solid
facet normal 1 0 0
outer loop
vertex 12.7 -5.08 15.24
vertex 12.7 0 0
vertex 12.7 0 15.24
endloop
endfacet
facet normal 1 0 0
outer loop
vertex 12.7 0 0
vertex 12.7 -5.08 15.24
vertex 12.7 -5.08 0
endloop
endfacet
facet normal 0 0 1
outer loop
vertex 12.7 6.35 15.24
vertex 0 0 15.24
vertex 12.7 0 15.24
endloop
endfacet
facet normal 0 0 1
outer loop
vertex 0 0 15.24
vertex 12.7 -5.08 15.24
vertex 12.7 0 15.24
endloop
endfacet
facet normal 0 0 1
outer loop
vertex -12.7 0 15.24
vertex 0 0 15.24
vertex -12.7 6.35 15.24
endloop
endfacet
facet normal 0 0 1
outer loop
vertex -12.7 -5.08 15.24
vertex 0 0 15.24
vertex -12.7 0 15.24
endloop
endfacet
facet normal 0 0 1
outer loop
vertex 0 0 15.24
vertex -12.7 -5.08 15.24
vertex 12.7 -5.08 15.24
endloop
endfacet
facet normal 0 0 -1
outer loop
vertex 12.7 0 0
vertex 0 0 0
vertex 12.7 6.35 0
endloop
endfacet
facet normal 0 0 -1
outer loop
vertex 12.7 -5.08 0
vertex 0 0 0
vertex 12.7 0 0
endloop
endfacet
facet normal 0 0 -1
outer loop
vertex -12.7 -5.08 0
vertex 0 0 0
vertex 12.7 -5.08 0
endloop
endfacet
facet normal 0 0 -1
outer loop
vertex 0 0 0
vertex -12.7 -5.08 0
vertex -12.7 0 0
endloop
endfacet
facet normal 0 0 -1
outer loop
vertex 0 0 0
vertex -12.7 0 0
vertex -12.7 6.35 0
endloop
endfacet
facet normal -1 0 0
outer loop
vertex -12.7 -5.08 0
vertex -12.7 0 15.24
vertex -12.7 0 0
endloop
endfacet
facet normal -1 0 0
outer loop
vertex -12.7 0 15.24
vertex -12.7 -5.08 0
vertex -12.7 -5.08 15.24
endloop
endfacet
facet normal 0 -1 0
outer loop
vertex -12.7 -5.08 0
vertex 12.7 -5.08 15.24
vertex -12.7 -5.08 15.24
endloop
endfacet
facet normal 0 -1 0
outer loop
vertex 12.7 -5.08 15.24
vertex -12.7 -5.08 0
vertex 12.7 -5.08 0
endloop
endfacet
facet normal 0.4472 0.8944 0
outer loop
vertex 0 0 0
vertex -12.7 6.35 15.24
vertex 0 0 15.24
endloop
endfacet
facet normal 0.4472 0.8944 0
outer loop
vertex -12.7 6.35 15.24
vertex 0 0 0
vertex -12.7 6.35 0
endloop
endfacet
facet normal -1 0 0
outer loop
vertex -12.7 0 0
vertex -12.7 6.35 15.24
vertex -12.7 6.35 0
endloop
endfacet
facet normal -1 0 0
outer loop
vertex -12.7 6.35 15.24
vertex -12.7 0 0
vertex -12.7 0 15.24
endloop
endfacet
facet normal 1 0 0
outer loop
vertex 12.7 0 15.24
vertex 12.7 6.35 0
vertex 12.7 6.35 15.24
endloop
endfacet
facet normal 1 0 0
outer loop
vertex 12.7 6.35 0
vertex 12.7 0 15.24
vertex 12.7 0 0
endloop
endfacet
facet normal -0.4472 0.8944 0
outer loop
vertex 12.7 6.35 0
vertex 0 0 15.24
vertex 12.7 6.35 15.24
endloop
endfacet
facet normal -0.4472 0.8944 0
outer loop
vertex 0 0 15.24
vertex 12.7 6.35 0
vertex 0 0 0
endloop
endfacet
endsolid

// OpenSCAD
/* OpenSCAD file for my V block
 * Tom Trebisky  5-24-2023
 */

/* I make all my measurements in inches.
 * We need to convert to mm so the STL file will be in mm.
 */
mmpi = 25.4;
function mm(x) = x * mmpi;

// The base plate
len = mm ( 1.0 );
wid = mm ( 0.6 );
th = mm ( 0.2 );

// Height of the triangle
ty = mm ( 0.25 );

tb = len / 2.0;

module base () {
	color ( "cyan" )
	    translate ( [ -tb, -th, 0 ] )
	    cube ( [ len, th, wid ] );
}

module left () {
	linear_extrude (wid) polygon ( points = [[0,0],[-tb,ty],[-tb,0]], paths=[[0,1,2]]);
}

module right () {
	linear_extrude (wid) polygon ( points = [[0,0],[tb,0],[tb,ty]], paths=[[0,1,2]]);
}

module vblock () {
    union () {
	base ();
	left ();
	right ();
    }
}

vblock ();

// THE END
